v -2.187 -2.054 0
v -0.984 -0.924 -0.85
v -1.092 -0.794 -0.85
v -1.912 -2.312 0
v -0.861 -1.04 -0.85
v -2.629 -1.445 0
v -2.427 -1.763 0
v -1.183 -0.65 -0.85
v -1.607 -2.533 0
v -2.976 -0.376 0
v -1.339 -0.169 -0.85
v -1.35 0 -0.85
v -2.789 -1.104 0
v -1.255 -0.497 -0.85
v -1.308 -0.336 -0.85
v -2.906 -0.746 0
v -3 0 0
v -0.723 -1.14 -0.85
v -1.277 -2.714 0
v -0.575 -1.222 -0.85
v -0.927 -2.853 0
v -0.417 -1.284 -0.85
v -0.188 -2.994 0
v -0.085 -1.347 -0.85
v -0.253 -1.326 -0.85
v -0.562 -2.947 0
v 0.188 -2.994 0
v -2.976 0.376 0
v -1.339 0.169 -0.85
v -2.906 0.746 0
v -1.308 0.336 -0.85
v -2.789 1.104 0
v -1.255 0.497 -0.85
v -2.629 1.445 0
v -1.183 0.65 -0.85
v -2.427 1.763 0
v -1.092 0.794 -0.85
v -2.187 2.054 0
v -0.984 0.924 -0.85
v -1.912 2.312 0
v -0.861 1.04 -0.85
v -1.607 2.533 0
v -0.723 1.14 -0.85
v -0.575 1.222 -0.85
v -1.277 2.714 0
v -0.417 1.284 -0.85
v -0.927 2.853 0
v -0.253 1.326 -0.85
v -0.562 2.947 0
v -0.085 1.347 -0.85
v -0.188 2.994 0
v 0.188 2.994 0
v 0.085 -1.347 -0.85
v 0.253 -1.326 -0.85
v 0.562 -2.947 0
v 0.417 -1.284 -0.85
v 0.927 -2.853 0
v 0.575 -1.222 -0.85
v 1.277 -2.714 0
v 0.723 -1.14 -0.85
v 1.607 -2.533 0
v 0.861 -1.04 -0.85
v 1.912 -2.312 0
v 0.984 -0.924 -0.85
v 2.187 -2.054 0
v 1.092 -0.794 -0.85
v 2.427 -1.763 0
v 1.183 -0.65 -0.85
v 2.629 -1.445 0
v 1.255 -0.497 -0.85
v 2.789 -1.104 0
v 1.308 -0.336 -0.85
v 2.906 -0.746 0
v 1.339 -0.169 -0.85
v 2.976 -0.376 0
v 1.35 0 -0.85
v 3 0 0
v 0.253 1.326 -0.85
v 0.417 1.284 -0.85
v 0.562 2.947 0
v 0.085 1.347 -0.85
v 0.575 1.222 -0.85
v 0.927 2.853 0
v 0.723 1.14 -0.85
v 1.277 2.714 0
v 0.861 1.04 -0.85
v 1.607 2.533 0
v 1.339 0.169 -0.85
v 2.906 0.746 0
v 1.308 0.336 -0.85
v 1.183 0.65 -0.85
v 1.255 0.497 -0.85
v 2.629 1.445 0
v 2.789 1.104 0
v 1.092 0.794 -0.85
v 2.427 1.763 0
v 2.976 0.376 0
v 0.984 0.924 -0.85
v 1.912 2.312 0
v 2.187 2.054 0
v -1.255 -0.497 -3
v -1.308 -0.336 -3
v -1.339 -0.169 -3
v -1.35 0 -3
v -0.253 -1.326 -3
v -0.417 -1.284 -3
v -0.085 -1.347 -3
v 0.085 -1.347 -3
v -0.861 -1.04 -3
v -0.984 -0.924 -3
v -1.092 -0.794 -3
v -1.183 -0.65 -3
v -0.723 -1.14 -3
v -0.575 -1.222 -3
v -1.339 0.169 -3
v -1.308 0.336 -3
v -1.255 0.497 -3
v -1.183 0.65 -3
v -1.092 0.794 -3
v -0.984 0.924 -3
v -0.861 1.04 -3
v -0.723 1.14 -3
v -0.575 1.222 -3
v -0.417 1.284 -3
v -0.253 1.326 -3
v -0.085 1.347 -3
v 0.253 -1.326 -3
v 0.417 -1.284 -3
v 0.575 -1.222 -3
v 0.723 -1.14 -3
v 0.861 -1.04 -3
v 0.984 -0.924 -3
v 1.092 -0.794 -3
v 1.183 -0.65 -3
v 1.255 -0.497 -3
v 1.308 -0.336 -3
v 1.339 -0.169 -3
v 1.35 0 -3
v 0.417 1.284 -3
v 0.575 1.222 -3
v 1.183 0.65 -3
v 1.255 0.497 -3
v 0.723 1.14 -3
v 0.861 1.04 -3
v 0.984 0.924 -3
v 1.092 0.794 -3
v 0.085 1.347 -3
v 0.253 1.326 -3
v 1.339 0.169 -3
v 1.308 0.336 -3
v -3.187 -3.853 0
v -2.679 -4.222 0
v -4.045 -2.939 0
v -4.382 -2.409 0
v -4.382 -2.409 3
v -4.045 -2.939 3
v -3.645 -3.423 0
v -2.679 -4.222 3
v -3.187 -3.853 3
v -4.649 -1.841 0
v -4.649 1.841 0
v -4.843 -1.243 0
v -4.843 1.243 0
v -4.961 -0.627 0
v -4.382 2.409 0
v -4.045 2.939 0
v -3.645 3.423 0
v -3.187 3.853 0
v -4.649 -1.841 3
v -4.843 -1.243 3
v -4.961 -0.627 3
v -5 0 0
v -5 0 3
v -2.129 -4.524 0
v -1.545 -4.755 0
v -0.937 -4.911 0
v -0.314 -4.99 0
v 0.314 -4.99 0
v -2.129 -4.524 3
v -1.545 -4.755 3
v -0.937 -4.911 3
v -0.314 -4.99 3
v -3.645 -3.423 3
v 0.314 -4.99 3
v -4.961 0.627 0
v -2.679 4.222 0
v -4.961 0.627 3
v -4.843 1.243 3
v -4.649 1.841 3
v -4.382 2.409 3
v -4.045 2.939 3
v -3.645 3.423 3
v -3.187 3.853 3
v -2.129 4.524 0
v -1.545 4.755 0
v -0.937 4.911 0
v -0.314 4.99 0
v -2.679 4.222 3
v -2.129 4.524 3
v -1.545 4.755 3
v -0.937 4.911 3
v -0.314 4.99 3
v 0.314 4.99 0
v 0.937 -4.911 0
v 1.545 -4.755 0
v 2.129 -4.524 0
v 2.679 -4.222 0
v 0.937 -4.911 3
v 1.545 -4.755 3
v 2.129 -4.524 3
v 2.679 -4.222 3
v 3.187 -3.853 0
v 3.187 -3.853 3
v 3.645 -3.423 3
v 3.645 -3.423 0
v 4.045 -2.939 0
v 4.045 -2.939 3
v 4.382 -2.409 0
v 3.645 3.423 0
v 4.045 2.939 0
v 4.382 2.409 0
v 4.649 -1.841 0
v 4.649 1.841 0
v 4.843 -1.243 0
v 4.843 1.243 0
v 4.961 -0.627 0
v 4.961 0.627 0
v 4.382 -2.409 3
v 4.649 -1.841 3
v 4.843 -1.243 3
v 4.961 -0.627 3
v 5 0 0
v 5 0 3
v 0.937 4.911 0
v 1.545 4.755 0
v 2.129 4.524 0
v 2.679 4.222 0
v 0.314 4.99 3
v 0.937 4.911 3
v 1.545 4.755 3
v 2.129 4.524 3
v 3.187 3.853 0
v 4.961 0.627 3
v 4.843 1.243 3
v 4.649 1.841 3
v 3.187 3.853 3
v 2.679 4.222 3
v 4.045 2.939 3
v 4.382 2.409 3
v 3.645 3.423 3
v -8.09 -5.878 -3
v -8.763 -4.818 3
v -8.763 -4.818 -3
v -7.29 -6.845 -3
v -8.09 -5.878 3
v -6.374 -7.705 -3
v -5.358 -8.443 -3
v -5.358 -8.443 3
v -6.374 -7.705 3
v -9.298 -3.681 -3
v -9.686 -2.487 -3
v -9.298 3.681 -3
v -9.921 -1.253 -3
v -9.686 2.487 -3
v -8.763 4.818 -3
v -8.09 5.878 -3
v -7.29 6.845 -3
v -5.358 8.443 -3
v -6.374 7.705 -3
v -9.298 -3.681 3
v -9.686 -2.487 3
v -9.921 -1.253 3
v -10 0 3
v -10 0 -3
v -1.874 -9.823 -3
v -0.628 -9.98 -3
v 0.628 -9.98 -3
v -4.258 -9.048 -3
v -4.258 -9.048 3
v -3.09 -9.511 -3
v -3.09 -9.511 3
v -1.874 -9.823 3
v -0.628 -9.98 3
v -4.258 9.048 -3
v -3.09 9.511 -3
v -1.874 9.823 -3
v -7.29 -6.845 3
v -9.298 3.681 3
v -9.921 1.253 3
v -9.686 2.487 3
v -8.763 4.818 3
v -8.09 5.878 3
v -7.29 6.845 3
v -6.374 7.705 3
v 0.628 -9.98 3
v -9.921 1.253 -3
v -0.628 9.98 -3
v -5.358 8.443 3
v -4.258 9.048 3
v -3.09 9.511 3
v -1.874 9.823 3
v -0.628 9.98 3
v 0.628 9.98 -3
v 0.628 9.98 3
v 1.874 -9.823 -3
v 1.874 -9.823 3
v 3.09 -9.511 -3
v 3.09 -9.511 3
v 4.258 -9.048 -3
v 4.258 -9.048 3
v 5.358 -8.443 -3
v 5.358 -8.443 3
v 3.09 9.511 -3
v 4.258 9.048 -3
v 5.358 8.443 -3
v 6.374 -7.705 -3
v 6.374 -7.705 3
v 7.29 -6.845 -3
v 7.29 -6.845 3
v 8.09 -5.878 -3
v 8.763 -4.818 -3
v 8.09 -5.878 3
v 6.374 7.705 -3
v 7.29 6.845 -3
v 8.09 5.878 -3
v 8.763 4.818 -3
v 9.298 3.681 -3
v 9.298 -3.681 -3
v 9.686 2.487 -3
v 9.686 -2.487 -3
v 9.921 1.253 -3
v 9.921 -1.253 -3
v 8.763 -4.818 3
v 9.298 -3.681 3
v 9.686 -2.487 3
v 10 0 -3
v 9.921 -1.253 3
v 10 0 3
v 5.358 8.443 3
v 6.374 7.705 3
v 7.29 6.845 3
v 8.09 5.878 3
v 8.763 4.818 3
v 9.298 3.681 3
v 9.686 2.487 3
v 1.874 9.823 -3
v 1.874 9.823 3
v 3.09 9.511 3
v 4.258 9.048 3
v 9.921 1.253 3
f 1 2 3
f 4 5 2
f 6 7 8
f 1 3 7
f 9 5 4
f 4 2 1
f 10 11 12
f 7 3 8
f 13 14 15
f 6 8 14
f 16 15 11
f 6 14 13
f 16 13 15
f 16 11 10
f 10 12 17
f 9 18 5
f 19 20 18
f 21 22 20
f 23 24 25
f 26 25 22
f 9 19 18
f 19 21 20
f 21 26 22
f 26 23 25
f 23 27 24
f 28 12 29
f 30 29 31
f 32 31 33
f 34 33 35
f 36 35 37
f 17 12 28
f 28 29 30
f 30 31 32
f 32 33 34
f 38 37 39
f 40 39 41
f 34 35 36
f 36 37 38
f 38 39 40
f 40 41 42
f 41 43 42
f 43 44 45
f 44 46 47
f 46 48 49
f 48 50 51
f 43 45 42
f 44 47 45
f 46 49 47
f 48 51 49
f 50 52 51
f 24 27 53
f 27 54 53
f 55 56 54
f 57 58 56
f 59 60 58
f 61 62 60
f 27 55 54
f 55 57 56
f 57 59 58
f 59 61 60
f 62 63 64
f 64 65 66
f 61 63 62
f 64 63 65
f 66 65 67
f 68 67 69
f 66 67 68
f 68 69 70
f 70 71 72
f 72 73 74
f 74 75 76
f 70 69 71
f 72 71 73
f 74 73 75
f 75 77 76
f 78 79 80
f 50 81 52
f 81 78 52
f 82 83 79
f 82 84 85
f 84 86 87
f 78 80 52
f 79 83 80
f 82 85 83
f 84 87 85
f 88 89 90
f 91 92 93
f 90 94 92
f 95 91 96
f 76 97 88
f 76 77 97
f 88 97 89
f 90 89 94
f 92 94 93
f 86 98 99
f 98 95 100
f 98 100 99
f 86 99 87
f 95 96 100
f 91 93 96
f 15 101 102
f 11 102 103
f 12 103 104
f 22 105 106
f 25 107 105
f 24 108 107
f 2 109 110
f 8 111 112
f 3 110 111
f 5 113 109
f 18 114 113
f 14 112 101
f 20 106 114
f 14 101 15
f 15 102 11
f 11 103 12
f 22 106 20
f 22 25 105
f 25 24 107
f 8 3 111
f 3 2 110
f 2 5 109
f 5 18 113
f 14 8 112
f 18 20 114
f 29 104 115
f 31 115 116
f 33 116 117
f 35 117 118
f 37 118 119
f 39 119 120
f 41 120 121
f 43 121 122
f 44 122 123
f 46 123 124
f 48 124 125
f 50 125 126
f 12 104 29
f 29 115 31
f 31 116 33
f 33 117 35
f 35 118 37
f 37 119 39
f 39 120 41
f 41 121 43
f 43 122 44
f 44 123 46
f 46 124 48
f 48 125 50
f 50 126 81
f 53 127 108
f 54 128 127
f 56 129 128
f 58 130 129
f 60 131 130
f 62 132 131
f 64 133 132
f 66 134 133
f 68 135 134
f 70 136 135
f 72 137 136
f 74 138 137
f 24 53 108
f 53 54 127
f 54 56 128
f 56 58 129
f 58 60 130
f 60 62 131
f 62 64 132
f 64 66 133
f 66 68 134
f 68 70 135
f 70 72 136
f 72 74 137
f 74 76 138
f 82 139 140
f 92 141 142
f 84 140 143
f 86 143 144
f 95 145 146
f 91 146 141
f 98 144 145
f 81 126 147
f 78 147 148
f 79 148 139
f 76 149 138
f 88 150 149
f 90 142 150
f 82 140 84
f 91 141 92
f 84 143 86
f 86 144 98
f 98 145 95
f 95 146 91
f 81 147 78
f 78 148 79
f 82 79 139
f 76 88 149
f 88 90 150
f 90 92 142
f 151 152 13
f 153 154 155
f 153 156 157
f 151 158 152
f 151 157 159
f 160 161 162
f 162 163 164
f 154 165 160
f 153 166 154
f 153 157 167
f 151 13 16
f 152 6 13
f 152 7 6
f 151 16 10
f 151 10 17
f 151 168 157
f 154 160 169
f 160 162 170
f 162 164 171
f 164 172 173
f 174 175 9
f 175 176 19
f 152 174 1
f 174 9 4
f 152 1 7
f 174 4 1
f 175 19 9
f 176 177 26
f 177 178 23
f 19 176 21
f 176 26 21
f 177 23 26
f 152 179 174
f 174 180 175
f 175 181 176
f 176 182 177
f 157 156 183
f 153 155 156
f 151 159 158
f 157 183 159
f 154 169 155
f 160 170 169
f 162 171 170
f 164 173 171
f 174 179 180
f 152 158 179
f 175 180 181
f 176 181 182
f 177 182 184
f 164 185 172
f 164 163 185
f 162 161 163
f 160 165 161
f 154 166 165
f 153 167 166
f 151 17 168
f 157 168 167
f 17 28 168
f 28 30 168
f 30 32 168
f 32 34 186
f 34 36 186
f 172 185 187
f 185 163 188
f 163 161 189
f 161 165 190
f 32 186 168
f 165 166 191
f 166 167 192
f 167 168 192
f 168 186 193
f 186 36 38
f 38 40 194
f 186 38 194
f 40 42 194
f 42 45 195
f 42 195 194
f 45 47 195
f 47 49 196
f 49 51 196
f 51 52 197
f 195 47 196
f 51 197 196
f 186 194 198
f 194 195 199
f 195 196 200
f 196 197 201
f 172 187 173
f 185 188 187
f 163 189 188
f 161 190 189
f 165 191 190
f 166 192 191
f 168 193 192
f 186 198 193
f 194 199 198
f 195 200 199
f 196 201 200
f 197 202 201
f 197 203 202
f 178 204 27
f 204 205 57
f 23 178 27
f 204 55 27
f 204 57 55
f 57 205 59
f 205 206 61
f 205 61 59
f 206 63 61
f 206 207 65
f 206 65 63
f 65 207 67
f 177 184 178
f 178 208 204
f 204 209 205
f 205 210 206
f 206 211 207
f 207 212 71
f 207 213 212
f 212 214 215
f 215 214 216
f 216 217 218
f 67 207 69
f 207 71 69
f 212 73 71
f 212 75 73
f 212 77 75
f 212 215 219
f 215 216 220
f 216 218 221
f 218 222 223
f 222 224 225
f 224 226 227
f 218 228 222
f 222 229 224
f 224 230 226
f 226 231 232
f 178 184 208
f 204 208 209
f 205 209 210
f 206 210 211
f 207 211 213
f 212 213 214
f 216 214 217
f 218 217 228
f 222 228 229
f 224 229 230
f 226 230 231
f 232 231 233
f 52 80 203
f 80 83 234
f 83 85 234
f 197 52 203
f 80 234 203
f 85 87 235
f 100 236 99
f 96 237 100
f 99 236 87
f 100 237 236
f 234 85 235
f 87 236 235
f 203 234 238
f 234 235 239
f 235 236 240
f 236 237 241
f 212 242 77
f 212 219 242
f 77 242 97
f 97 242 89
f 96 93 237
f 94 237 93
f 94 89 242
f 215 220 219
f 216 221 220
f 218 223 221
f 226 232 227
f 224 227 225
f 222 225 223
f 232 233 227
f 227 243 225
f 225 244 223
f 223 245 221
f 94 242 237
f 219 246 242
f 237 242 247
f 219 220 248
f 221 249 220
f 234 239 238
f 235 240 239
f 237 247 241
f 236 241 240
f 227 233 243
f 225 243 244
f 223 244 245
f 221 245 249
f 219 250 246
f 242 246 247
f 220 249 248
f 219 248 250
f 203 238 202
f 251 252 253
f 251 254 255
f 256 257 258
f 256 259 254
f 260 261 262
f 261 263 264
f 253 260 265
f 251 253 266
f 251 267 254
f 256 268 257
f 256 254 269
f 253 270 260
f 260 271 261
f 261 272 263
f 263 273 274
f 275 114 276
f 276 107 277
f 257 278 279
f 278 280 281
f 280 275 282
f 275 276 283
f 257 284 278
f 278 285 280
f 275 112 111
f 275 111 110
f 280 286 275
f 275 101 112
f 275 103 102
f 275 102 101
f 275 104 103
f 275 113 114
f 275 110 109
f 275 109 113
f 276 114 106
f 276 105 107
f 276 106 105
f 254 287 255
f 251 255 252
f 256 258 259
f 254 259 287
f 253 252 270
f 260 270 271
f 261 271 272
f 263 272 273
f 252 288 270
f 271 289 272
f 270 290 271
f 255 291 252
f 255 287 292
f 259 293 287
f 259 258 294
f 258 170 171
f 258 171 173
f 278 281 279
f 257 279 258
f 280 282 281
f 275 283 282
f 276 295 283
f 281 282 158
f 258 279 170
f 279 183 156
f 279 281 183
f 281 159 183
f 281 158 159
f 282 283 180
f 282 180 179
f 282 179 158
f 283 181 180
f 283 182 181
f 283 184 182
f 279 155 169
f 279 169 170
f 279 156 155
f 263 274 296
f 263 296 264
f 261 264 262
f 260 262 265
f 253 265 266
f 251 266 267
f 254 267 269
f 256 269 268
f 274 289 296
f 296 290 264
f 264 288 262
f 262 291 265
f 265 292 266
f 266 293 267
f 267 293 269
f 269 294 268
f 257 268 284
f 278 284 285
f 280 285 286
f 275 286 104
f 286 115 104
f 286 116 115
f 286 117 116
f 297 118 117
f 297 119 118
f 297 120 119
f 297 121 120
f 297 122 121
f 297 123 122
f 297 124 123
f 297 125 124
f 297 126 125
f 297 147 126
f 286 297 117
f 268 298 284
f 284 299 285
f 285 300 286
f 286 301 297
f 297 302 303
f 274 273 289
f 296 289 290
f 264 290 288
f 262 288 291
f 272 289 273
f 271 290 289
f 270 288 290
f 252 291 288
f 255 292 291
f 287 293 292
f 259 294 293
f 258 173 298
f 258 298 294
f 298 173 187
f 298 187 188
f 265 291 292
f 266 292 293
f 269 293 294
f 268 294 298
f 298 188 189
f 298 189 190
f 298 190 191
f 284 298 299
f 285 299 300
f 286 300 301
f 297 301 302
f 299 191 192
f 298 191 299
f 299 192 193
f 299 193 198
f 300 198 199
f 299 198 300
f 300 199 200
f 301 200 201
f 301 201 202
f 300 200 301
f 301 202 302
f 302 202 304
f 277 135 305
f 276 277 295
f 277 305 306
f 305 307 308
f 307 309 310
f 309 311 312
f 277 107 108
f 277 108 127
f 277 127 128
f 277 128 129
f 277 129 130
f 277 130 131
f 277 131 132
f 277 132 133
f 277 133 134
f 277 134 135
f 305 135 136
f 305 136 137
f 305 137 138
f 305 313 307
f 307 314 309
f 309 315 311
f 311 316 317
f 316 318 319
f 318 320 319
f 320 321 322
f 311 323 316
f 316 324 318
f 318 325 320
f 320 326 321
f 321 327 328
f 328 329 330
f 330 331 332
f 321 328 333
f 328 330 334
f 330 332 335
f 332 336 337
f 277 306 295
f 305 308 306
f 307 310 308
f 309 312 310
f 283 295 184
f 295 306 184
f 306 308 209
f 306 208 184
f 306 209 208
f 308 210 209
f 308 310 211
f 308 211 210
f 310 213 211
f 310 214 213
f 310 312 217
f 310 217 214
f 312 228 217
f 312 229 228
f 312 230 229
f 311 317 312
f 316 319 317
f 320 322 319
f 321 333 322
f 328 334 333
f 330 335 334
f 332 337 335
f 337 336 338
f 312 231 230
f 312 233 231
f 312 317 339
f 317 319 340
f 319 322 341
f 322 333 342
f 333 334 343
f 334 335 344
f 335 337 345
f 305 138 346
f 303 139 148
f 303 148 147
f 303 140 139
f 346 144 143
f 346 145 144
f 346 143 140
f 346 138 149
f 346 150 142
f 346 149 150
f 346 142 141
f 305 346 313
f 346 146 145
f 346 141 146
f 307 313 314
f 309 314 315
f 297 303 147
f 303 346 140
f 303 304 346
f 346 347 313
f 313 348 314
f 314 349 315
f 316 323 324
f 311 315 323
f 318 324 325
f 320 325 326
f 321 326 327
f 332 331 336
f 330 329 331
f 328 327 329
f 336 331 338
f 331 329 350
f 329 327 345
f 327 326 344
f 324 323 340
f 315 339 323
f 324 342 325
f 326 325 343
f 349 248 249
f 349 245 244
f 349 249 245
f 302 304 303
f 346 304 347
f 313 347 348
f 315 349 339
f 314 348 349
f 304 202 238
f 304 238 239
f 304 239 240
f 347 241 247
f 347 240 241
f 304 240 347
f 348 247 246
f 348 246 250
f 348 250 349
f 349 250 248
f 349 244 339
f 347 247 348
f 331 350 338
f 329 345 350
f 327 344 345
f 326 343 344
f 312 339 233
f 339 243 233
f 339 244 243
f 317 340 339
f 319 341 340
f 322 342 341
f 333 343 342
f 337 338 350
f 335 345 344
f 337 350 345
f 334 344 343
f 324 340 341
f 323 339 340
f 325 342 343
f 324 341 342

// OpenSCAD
$fn = 50;


difference() {
	union() {
		translate(v = [0, 0, -3.0000000000]) {
			cylinder(h = 6, r = 10.0000000000);
		}
	}
	union() {
		translate(v = [0, 0, 0]) {
			rotate(a = [0, 0, 0]) {
				difference() {
					union() {
						translate(v = [0, 0, -6.0000000000]) {
							cylinder(h = 6, r = 1.0000000000);
						}
						translate(v = [0, 0, -0.8500000000]) {
							cylinder(h = 0.8500000000, r1 = 1.3500000000, r2 = 3.0000000000);
						}
						translate(v = [0, 0, -6.0000000000]) {
							cylinder(h = 6, r = 1.3500000000);
						}
						translate(v = [0, 0, -6.0000000000]) {
							cylinder(h = 6, r = 1.0000000000);
						}
					}
					union();
				}
			}
		}
		#cylinder(h = 3, r = 5.0000000000);
	}
}
